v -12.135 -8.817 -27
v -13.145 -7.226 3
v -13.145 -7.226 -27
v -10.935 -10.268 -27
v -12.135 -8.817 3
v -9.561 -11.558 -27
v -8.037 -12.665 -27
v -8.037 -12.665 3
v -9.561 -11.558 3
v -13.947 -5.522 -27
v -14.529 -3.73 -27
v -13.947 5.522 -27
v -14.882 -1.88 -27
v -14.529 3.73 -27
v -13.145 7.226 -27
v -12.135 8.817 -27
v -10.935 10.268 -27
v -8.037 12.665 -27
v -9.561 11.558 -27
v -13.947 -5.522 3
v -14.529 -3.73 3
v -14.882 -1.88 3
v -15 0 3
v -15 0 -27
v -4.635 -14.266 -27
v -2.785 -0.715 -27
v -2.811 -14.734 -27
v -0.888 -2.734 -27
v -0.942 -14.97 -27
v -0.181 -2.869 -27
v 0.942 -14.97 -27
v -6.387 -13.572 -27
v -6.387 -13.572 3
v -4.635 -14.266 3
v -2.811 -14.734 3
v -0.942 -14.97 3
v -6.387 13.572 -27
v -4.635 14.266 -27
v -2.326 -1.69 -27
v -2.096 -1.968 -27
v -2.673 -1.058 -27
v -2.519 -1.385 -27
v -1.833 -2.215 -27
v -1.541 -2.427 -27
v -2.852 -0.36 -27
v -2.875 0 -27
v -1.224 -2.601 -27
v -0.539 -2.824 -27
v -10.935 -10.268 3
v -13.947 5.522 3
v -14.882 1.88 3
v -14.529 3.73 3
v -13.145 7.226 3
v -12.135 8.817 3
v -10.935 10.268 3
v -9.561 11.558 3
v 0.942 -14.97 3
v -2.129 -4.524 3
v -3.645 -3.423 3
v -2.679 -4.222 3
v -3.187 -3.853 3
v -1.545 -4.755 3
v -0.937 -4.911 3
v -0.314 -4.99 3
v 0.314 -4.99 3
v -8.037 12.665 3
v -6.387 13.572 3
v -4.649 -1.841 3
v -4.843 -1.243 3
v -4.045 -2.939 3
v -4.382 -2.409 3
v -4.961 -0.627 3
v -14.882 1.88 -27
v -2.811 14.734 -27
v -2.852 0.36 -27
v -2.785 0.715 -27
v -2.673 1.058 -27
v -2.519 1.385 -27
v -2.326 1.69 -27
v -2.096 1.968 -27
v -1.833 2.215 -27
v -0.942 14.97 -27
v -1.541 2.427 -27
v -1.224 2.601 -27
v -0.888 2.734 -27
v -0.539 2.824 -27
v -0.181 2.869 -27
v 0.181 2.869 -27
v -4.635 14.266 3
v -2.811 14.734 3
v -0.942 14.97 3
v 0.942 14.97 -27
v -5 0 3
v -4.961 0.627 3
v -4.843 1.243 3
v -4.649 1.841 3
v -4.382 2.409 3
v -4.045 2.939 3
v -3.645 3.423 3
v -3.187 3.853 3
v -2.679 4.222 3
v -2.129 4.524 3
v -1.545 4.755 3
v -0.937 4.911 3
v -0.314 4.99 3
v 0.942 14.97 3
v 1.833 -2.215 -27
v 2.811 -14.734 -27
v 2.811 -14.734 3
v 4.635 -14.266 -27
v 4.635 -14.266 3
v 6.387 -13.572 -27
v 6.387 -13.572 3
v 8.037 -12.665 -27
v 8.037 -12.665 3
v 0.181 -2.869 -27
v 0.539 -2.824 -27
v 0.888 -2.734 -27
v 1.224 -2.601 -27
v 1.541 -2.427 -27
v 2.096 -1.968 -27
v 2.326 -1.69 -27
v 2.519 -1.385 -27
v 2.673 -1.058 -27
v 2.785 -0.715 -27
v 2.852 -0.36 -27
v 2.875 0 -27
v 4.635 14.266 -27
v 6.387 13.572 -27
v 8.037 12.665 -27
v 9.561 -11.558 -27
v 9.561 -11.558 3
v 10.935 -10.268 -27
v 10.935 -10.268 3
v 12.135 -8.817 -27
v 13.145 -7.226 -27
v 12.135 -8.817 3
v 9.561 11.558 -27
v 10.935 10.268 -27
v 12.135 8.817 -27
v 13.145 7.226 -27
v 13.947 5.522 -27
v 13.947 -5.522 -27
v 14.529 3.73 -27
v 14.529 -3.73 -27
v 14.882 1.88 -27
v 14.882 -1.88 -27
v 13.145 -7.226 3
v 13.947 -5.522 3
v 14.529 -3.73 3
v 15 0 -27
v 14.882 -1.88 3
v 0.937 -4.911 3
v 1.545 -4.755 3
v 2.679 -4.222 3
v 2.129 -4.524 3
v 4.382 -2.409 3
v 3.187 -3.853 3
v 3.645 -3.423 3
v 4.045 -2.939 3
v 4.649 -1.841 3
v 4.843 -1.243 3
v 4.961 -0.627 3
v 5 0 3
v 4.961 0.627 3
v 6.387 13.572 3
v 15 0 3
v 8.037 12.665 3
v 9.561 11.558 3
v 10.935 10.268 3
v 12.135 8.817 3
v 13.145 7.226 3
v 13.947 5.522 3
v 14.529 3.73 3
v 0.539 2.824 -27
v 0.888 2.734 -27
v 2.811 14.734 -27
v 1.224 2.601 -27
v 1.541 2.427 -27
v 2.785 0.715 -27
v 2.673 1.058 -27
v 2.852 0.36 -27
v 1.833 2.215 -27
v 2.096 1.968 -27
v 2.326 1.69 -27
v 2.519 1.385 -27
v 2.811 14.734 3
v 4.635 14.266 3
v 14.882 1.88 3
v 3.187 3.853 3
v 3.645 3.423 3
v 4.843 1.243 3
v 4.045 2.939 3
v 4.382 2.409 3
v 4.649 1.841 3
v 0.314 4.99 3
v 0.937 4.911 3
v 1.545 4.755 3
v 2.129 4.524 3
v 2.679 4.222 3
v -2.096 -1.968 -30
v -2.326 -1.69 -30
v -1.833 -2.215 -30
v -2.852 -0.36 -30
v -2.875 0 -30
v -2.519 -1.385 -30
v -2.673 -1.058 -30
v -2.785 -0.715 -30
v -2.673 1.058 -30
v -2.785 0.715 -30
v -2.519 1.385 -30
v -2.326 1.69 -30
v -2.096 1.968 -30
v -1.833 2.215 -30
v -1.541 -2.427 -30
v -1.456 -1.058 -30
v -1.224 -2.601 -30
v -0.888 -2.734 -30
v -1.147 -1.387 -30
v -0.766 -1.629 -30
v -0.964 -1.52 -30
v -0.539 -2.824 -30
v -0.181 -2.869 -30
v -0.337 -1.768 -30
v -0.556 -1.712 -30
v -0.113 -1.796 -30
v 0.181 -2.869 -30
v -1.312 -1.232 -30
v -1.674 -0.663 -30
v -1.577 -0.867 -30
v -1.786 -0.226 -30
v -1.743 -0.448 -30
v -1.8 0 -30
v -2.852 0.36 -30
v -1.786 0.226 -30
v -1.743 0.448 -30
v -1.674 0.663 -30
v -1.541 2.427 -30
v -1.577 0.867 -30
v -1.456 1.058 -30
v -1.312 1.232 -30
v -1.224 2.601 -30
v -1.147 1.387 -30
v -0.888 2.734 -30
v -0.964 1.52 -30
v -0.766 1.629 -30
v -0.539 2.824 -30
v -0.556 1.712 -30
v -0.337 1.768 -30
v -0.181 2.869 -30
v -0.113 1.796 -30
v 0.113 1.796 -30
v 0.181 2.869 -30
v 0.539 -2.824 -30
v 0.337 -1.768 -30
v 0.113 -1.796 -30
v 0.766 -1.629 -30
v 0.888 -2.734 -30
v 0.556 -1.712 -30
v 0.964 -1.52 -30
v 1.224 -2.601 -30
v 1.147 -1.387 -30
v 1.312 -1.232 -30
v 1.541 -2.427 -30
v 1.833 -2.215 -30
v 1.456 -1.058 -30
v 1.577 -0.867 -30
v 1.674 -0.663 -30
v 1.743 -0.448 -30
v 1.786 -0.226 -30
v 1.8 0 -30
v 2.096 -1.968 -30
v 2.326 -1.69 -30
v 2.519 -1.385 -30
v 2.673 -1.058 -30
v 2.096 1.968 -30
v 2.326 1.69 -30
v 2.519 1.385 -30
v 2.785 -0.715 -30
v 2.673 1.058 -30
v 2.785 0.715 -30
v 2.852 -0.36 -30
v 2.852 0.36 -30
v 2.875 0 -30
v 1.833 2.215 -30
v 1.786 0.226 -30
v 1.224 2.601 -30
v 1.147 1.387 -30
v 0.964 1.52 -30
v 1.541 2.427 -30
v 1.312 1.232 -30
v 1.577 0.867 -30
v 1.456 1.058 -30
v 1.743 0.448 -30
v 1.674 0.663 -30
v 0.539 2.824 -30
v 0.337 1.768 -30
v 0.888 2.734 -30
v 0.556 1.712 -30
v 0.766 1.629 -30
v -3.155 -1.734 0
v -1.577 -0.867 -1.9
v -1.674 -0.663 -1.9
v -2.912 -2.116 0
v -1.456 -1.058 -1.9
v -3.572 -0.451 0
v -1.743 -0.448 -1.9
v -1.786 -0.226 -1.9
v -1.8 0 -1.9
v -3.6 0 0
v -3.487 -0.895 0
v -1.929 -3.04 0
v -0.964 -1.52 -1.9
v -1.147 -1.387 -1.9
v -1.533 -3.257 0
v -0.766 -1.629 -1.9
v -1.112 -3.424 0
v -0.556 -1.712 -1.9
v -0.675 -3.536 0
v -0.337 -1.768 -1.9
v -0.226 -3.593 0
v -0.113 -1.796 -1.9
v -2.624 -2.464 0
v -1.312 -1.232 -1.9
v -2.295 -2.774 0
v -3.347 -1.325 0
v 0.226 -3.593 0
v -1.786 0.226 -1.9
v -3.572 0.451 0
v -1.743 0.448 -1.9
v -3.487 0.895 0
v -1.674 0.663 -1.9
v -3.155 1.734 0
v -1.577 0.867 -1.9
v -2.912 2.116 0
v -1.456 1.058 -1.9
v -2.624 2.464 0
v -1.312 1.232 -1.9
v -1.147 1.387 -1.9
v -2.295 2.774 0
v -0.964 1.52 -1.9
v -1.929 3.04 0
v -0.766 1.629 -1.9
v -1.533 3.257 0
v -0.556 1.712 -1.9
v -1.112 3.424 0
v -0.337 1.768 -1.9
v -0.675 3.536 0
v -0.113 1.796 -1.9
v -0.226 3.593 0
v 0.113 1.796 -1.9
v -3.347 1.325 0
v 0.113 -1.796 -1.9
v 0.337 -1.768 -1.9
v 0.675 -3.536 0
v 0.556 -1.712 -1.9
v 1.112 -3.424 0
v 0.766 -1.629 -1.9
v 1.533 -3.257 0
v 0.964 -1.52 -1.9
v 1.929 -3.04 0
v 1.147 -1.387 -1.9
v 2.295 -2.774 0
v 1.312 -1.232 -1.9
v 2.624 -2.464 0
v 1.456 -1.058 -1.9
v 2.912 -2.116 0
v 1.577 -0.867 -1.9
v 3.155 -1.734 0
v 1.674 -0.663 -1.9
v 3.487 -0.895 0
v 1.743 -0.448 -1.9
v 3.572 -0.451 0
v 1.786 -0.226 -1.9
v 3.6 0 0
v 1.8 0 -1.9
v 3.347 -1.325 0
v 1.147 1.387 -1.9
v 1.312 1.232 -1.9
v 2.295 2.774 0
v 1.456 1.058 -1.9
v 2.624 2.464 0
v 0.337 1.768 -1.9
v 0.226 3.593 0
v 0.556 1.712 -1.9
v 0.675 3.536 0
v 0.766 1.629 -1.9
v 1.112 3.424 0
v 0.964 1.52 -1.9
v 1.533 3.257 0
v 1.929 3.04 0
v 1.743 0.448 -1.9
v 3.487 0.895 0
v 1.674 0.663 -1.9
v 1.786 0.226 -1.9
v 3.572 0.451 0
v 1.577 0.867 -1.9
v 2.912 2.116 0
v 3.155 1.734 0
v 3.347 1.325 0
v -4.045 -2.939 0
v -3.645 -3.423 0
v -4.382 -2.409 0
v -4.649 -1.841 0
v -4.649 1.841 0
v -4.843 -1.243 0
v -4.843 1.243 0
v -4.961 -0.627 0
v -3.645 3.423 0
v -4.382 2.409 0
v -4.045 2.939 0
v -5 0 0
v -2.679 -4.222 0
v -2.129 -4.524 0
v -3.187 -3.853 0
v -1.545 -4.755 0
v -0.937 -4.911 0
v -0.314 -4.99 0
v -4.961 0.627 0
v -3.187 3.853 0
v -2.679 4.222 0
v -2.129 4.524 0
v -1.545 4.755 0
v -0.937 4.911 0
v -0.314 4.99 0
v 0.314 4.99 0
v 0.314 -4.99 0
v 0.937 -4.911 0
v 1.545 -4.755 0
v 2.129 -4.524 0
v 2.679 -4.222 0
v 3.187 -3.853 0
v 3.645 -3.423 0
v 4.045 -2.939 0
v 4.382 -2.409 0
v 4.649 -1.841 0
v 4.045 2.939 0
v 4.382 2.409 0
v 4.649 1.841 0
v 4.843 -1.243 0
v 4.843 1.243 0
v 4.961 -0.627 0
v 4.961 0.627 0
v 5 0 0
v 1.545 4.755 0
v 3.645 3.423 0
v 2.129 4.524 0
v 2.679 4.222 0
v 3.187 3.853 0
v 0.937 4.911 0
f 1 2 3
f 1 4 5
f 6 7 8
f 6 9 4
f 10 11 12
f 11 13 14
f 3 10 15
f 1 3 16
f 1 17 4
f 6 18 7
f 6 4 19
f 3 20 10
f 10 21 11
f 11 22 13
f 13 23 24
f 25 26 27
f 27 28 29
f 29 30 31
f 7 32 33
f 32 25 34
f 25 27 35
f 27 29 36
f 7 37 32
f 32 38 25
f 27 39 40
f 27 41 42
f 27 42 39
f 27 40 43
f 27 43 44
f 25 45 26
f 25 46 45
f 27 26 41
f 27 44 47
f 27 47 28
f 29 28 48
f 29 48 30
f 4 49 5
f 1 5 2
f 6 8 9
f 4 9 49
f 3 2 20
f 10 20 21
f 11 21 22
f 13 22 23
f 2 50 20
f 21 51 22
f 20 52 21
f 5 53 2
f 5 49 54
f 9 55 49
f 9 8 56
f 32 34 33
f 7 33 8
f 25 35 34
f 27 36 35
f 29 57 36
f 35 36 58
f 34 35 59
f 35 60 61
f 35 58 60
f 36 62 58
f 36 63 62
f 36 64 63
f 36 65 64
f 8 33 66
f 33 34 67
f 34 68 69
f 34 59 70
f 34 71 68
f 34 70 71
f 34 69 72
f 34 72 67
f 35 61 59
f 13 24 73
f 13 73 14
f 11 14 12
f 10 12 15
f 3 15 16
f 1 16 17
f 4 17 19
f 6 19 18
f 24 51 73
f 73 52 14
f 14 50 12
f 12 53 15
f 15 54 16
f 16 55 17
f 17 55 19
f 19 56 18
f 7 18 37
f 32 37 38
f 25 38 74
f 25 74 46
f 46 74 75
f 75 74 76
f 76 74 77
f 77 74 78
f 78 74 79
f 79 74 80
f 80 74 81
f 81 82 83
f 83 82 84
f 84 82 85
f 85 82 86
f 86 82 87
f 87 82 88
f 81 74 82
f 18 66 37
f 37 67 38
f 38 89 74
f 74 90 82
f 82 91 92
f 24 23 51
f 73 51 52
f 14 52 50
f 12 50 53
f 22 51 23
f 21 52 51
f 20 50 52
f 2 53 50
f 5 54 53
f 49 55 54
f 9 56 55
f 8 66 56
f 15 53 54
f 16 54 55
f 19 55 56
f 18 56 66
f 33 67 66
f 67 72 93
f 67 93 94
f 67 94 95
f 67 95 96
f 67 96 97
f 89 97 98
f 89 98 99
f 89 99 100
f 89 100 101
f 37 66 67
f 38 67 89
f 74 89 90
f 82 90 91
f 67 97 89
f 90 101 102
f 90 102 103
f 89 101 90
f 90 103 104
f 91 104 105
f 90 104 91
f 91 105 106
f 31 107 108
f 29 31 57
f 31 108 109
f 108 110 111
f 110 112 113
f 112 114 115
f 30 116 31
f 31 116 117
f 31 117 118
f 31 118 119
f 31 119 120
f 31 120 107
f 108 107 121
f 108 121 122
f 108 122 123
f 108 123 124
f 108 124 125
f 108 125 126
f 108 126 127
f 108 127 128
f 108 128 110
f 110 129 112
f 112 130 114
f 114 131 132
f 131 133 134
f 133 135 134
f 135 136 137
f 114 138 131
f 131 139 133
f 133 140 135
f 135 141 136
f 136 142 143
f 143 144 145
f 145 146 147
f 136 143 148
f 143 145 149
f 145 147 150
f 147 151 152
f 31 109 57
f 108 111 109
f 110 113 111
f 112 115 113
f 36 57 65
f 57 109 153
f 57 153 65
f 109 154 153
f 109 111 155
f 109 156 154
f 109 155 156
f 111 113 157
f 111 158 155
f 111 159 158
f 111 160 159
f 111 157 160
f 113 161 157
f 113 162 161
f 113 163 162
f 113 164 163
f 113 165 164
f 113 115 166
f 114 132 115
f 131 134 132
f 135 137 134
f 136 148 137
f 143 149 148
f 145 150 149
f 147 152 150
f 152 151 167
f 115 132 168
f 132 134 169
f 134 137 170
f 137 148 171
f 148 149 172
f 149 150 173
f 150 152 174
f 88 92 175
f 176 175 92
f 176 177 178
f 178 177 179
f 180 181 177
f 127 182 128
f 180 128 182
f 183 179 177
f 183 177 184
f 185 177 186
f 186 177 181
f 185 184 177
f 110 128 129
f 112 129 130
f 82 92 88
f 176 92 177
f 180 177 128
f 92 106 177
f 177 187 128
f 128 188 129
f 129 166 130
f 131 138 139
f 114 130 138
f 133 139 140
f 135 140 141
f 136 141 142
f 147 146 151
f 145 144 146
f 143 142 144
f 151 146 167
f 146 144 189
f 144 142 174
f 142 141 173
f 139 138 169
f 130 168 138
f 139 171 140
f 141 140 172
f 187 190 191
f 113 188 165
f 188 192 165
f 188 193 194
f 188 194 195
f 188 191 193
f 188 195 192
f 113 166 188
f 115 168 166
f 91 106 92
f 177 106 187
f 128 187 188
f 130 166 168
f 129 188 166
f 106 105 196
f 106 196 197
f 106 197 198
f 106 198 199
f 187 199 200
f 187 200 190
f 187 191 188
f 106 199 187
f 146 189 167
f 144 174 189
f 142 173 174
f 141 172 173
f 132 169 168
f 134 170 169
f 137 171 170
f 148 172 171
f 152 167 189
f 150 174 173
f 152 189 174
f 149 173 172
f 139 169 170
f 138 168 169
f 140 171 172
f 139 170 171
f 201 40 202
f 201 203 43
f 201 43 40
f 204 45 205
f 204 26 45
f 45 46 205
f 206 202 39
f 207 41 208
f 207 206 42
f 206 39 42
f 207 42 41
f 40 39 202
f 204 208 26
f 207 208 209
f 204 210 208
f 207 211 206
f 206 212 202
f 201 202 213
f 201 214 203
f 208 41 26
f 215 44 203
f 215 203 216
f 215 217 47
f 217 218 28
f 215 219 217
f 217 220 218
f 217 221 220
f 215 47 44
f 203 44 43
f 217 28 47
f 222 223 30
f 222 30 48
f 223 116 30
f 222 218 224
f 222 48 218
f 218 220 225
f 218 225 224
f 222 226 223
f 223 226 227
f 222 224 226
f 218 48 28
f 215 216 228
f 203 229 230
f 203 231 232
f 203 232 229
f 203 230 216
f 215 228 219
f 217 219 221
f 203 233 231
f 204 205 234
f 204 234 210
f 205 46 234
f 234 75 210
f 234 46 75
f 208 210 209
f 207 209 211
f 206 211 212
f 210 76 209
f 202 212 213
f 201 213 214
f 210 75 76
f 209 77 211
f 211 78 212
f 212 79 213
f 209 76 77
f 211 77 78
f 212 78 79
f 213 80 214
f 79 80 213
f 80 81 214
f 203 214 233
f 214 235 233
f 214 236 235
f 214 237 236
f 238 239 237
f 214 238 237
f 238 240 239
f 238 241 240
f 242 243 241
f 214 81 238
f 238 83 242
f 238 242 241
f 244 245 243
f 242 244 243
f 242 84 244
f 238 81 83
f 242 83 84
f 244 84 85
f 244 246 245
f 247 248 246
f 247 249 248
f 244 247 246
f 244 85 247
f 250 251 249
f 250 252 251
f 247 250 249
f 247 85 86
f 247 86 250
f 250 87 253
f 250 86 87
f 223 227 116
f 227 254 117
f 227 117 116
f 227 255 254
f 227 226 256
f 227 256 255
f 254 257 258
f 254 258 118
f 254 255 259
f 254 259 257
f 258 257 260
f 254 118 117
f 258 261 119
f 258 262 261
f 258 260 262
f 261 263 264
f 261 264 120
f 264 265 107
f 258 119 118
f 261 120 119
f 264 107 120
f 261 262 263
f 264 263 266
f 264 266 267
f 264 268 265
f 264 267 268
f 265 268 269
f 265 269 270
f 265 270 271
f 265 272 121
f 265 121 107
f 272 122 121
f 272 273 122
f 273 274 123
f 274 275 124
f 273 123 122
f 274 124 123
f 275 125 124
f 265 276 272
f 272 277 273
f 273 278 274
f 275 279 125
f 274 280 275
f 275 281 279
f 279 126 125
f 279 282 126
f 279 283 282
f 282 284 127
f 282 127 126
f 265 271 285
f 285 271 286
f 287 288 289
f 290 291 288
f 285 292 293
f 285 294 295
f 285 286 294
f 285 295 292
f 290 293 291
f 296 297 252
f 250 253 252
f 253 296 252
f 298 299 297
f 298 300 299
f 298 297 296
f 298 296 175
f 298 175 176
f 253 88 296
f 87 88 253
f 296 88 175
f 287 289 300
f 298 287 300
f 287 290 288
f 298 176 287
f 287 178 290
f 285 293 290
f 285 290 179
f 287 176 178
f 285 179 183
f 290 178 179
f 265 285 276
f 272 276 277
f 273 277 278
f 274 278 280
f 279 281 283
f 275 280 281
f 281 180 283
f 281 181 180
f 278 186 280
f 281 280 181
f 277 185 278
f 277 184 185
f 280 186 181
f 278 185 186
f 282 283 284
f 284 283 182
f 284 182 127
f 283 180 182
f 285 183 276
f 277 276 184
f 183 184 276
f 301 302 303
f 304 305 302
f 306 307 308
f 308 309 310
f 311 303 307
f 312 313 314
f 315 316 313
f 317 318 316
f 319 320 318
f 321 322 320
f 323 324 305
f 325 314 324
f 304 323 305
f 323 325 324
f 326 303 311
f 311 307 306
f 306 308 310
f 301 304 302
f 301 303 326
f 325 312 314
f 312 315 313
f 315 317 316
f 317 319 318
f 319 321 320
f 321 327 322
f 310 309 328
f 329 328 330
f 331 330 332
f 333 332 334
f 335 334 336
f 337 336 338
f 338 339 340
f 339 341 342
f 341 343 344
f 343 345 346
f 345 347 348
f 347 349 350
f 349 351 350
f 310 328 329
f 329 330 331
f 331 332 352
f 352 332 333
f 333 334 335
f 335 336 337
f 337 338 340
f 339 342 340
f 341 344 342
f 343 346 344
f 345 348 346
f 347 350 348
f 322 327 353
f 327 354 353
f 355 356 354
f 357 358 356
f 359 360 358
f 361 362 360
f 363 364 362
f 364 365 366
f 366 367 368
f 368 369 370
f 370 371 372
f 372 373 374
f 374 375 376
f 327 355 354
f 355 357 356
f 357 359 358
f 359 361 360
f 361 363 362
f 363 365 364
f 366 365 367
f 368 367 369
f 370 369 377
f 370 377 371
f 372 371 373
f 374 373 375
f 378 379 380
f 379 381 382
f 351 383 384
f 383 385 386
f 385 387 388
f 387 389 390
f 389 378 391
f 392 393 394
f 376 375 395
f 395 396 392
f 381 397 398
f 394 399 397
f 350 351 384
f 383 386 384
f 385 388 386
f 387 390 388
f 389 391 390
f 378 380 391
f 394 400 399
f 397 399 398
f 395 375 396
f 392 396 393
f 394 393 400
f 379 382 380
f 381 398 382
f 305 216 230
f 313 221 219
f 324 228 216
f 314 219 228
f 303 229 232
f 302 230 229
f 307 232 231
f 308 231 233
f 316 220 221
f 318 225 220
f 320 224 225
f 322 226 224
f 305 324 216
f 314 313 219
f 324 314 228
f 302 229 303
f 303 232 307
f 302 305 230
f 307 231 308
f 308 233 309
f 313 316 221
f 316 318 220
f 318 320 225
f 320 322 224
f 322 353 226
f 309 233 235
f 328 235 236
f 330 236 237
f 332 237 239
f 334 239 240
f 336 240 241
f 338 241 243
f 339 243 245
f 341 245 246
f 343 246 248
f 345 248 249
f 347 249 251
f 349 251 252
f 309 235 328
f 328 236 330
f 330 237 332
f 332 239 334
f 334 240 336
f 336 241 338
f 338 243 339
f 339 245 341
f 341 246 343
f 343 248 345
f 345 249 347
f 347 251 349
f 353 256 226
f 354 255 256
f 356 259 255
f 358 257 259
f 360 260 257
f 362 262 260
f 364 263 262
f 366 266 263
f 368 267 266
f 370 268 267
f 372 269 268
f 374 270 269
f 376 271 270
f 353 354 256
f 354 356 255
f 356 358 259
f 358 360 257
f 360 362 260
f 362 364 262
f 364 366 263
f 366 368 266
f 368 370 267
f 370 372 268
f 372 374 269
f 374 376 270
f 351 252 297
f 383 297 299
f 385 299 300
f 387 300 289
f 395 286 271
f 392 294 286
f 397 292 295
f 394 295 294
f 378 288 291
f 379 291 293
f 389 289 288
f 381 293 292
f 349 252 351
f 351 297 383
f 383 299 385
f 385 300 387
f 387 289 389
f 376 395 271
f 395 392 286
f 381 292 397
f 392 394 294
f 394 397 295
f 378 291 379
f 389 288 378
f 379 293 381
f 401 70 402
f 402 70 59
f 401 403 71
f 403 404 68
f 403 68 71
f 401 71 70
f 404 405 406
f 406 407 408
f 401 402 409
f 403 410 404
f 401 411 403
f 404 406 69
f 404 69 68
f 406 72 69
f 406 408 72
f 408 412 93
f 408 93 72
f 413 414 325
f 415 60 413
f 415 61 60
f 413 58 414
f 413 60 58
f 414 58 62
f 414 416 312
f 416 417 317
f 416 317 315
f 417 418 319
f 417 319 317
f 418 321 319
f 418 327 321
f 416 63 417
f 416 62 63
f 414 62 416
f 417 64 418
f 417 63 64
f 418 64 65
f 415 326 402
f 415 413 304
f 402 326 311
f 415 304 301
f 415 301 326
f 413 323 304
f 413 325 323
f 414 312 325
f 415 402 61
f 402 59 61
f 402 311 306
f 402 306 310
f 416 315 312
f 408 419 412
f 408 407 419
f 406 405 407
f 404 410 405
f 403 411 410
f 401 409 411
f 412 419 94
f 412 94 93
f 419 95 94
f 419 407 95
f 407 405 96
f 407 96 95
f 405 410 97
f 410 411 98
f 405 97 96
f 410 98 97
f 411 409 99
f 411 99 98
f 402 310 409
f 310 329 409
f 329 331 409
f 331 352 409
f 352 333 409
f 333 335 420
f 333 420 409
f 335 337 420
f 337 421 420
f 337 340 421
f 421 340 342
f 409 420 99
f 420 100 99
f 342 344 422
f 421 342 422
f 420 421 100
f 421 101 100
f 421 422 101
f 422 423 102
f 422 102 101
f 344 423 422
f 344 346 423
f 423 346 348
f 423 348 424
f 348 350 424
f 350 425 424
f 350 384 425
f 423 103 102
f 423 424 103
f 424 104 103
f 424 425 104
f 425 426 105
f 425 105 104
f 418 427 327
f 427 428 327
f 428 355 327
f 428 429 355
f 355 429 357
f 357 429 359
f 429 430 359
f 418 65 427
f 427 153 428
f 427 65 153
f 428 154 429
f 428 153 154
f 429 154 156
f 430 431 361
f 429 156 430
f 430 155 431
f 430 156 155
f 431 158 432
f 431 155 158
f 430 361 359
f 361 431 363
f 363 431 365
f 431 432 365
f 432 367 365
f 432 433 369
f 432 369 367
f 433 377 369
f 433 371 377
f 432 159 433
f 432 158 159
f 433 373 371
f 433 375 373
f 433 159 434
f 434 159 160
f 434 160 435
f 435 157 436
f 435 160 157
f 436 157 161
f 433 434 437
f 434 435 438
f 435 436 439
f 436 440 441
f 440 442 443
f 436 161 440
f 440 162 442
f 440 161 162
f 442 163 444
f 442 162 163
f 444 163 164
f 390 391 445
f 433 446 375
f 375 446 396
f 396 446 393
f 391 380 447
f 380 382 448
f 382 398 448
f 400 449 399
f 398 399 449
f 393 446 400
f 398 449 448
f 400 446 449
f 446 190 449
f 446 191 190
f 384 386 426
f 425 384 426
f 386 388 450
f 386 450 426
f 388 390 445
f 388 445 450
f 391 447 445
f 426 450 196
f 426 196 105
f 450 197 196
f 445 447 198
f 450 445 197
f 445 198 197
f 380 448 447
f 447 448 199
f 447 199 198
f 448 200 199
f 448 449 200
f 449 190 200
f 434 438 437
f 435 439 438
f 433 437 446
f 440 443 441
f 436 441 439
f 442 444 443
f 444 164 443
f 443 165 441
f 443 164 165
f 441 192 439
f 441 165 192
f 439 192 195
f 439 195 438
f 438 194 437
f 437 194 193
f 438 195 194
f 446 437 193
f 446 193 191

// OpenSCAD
$fn = 50;

difference() {
	union() {
		translate(v = [0, 0, -27.0]) {
			cylinder(h = 30, r = 15.0);
		}
		#translate(v = [0, 0, -30.0]) {
			cylinder(h = 30, r = 2.875);
		}
	}
	union() {
		translate(v = [0, 0, 0]) {
			rotate(a = [0, 0, 0]) {
				difference() {
					union() {
						translate(v = [0, 0, -30.0]) {
							cylinder(h = 30, r = 1.5);
						}
						translate(v = [0, 0, -1.9]) {
							cylinder(h = 1.9, r1 = 1.8, r2 = 3.6);
						}
						translate(v = [0, 0, -30.0]) {
							cylinder(h = 30, r = 1.8);
						}
						translate(v = [0, 0, -30.0]) {
							cylinder(h = 30, r = 1.5);
						}
					}
					union();
				}
			}
		}
		#cylinder(h = 3, r = 5.0);
	}
}
